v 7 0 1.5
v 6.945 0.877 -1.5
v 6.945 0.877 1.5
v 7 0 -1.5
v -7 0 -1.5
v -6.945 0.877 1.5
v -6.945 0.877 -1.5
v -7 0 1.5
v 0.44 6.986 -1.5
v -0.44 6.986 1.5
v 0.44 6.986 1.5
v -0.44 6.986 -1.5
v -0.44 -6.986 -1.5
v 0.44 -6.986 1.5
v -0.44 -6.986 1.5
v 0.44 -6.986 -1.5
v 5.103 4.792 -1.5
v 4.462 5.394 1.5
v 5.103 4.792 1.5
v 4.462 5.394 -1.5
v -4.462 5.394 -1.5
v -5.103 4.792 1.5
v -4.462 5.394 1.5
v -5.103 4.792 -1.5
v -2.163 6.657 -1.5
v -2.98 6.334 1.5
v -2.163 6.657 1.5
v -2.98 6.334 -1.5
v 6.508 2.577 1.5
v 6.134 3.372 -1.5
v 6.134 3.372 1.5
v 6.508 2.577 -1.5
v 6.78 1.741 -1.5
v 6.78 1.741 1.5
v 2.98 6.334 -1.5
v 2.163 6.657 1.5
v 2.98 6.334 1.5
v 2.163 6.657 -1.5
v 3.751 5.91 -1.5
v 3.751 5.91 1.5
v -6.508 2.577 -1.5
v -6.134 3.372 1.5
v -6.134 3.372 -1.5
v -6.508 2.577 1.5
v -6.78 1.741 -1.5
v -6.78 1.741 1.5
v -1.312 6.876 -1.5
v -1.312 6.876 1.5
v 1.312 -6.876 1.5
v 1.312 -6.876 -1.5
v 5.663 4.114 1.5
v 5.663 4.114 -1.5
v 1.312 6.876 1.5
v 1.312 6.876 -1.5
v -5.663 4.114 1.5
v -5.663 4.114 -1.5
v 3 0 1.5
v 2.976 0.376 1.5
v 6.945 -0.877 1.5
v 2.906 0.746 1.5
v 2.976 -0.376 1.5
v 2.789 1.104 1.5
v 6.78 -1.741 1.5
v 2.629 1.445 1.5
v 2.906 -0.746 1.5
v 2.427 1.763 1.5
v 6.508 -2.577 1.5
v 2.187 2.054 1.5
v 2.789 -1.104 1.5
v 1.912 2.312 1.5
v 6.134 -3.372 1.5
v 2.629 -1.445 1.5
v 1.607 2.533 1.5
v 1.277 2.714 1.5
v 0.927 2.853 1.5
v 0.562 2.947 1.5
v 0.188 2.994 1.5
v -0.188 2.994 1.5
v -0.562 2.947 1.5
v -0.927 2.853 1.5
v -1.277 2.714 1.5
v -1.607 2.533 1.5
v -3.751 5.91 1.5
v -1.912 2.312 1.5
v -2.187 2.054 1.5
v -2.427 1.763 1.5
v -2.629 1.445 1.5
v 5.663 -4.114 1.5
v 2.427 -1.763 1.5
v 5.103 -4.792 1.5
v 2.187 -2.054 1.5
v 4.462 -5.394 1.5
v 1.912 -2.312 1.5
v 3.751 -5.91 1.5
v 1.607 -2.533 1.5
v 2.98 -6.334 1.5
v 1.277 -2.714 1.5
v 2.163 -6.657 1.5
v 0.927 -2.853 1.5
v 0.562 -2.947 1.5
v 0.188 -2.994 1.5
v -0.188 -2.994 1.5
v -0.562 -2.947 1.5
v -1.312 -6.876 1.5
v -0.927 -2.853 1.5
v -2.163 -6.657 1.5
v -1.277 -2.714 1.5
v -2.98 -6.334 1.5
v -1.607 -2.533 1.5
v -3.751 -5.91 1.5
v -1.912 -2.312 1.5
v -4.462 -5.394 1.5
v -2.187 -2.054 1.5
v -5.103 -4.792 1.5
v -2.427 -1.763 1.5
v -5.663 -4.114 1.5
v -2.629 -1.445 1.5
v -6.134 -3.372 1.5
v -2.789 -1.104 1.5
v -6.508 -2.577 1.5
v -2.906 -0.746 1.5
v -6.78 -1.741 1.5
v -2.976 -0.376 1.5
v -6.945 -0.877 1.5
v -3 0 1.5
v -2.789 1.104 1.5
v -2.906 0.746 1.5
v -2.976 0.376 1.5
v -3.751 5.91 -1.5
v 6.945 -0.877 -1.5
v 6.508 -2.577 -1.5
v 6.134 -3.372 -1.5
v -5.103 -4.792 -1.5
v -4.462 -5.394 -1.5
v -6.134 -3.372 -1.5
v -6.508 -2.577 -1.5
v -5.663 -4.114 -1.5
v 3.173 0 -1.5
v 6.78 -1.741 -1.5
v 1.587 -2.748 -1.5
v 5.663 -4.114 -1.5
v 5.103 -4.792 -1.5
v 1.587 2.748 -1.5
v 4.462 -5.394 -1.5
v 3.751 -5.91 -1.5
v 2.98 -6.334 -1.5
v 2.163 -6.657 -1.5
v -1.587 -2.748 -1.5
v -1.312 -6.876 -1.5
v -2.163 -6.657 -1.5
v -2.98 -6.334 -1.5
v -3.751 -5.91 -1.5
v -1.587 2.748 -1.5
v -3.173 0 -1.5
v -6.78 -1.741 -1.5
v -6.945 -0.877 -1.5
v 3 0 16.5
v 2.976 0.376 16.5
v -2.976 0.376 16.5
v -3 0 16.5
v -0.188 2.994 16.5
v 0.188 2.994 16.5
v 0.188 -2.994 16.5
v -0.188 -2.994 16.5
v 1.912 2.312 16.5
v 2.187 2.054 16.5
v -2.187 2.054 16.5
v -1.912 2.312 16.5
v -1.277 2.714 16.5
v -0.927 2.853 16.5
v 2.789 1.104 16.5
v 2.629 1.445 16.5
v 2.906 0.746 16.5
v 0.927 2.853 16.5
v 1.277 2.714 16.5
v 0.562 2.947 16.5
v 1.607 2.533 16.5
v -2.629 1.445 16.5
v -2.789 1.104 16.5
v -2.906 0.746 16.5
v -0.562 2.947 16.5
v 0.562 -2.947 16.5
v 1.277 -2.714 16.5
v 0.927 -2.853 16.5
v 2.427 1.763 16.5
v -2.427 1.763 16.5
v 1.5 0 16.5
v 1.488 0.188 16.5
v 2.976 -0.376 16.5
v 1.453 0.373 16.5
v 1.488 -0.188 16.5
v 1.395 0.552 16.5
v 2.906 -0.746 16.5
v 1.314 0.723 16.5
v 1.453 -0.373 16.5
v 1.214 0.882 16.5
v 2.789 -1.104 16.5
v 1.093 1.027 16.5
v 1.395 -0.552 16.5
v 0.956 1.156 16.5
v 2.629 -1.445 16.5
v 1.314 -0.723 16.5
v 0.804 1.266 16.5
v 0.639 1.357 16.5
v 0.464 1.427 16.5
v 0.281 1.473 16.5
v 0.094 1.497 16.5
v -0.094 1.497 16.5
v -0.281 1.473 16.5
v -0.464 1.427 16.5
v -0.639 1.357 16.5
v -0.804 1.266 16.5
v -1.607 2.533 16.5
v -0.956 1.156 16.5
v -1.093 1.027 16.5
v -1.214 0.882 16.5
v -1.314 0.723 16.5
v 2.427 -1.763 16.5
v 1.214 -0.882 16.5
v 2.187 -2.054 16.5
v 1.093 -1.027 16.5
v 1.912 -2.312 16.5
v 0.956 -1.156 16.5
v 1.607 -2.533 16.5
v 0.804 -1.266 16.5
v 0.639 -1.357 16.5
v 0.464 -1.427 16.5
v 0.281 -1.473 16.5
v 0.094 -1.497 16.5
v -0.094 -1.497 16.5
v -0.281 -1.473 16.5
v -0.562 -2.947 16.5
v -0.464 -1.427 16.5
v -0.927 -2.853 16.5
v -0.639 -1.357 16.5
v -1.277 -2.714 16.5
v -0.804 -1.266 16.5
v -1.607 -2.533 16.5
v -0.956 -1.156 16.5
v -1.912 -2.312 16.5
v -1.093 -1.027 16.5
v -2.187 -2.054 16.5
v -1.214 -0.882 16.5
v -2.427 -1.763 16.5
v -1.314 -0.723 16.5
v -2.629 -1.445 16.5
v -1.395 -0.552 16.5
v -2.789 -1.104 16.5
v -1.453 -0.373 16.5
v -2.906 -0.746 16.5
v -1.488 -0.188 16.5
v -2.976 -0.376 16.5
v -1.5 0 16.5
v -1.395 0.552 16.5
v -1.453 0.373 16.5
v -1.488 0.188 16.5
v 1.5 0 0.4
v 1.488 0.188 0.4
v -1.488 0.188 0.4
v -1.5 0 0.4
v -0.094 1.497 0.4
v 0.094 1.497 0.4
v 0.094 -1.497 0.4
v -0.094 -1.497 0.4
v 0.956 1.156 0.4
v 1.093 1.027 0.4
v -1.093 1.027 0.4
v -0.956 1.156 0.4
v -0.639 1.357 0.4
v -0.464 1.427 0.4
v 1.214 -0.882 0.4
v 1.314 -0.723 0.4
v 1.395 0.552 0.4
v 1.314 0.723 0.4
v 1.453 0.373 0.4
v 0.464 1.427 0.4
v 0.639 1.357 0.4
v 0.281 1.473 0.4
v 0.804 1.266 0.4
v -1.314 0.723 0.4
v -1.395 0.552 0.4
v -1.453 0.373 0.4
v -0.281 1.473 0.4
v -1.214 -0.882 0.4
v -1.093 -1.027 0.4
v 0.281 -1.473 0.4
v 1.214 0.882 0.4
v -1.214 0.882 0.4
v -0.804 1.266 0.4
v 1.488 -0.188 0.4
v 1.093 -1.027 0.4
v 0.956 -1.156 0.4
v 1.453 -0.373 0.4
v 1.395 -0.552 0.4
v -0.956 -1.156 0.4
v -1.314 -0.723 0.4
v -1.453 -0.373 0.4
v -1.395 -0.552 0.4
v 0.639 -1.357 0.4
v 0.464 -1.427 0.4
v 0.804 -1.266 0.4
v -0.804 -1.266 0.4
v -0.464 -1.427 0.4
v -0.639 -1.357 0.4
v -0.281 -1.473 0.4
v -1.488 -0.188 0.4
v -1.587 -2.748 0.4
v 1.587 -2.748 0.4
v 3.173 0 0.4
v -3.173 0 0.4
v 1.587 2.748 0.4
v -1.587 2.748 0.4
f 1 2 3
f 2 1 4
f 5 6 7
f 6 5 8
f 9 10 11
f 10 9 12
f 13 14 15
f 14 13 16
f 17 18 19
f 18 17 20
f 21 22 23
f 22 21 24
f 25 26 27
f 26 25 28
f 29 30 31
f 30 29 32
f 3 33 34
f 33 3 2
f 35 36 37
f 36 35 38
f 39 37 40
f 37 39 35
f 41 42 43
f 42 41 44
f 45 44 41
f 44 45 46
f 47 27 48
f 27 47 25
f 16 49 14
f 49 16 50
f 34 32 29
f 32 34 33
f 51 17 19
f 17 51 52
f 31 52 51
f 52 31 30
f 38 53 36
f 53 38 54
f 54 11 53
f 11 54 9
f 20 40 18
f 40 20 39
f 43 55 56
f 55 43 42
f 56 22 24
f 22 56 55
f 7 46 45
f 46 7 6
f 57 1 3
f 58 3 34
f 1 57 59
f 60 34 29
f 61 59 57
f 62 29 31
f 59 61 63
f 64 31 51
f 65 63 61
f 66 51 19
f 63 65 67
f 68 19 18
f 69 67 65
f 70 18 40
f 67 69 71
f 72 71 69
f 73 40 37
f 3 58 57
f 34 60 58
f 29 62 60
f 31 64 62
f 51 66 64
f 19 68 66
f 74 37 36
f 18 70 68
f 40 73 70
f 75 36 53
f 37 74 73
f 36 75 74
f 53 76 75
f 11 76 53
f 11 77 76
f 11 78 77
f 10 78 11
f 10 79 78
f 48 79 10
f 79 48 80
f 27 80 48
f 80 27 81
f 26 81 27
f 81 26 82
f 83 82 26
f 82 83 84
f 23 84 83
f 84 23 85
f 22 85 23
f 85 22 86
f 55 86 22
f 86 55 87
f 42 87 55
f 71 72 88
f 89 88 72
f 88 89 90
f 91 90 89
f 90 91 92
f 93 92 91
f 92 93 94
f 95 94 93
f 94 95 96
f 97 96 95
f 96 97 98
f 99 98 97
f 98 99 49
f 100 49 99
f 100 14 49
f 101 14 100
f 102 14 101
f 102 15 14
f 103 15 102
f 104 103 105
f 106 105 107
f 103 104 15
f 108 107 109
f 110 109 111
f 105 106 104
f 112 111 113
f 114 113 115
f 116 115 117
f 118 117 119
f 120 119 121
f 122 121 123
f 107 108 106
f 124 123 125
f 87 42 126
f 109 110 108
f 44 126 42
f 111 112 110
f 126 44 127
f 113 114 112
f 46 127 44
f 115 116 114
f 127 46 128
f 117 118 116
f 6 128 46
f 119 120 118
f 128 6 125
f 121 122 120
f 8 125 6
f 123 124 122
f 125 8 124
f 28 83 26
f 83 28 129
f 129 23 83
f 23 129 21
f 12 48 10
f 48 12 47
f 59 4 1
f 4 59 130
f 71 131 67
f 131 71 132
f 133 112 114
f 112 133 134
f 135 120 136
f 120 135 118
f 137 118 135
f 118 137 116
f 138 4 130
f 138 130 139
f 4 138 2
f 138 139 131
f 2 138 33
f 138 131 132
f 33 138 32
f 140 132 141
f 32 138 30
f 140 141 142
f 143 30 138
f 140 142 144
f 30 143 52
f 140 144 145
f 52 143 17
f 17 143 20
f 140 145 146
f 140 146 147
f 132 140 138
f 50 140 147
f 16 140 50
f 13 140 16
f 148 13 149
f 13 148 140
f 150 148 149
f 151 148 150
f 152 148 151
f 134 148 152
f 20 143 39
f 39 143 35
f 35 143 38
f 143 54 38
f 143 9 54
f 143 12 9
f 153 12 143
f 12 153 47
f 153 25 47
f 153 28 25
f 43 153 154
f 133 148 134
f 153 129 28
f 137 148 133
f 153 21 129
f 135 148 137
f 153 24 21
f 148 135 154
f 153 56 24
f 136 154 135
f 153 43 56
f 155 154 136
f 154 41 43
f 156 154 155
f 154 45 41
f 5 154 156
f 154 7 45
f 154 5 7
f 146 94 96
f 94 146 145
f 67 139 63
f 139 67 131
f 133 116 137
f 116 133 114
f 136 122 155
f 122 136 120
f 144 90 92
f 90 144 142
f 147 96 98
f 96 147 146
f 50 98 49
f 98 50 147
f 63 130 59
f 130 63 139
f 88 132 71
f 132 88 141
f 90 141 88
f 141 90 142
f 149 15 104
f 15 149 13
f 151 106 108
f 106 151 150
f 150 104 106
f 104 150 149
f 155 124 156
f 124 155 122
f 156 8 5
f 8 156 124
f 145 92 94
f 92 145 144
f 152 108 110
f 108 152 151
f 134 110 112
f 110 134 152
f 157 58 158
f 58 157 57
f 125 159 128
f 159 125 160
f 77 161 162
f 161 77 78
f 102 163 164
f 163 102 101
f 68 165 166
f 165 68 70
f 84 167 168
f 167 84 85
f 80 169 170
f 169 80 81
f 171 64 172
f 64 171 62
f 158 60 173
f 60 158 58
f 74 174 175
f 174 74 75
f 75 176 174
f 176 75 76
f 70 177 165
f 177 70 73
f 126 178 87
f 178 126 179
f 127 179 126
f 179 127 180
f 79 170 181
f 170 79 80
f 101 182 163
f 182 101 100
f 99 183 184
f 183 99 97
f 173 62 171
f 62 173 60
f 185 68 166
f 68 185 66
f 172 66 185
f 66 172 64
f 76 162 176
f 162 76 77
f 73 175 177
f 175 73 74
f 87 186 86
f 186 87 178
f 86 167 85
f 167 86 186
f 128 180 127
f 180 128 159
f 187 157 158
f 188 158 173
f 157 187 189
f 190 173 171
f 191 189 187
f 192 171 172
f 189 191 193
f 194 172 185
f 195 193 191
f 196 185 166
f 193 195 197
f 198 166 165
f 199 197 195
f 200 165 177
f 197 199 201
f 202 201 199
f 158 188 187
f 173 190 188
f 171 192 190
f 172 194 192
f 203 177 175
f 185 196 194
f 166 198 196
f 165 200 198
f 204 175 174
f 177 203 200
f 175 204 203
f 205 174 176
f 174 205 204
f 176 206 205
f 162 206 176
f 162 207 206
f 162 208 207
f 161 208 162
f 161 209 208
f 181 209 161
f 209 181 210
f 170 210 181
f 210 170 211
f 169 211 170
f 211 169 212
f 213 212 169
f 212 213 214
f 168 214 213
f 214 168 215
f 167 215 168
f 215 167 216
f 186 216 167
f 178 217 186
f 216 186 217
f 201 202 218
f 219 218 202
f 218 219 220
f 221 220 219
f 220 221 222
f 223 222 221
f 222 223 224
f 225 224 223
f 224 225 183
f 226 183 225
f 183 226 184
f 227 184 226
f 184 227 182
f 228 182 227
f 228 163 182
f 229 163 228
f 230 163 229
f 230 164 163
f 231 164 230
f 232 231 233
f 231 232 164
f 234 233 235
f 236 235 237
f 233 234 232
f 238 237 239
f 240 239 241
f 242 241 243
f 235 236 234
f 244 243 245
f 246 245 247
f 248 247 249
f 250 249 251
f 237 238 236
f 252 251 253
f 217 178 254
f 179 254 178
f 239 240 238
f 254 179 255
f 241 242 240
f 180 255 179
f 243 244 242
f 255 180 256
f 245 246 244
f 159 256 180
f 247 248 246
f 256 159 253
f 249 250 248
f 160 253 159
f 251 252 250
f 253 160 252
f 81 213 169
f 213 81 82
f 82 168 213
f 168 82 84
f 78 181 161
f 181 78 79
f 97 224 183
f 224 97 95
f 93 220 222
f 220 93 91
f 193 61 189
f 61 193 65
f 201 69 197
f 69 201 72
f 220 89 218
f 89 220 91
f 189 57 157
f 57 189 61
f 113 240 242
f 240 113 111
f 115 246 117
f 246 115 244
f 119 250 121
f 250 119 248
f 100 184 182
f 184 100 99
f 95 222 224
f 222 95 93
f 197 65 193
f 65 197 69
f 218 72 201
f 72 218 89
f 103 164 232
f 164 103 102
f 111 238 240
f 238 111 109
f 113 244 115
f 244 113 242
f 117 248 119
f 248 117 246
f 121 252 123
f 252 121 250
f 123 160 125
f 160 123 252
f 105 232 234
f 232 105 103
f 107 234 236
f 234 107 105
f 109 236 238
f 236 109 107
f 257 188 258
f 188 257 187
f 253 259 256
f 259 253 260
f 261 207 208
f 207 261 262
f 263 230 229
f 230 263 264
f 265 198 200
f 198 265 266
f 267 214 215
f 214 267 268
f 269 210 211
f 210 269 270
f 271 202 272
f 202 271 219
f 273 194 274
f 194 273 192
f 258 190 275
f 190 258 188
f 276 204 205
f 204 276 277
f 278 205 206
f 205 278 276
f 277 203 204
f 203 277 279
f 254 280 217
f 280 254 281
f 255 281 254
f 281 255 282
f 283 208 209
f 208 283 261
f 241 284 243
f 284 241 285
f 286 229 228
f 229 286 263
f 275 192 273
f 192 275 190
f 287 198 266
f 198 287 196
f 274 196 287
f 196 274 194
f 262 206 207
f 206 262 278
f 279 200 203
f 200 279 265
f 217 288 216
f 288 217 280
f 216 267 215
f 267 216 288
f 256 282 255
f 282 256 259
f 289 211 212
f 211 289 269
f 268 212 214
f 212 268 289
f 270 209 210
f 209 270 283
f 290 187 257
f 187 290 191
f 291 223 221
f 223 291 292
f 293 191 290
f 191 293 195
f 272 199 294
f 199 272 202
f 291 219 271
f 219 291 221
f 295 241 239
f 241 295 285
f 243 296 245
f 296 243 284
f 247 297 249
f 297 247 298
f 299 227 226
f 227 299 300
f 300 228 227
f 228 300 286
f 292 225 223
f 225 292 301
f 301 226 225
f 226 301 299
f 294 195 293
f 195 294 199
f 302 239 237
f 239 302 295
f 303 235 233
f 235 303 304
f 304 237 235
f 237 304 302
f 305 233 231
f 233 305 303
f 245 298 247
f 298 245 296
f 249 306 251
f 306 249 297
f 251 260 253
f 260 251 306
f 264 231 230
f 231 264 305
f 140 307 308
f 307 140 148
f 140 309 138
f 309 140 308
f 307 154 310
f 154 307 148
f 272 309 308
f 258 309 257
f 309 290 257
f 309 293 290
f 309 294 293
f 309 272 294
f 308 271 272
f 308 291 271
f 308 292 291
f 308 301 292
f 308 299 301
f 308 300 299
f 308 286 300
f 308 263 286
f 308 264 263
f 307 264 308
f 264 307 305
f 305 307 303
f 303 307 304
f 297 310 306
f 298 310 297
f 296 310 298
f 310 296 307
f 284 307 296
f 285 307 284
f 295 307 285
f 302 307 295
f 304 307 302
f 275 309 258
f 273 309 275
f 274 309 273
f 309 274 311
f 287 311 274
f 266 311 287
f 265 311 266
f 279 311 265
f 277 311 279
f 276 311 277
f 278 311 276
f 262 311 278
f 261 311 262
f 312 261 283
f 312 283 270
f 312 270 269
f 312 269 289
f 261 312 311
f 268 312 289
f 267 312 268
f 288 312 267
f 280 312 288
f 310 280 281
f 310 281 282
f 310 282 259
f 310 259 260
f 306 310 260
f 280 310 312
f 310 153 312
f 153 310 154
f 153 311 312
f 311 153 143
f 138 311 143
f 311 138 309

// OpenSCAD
$fn = 50;


difference() {
	union() {
		translate(v = [0, 0, -1.5000000000]) {
			rotate(a = [0, 0, 0]) {
				cylinder(h = 3, r = 7.0000000000);
			}
		}
		translate(v = [0, 0, -1.5000000000]) {
			rotate(a = [0, 0, 0]) {
				cylinder(h = 18, r = 3.0000000000);
			}
		}
	}
	union() {
		translate(v = [0, 0, -125.0000000000]) {
			rotate(a = [0, 0, 0]) {
				cylinder(h = 250, r = 1.5000000000);
			}
		}
		translate(v = [0, 0, -2.1000000000]) {
			rotate(a = [0, 0, 0]) {
				#translate(v = [0, 0, 0]) {
					rotate(a = [0, 0, 0]) {
						linear_extrude(height = 2.5000000000) {
							polygon(points = [[3.1735000000, 0.0000000000], [1.5867500000, 2.7483316189], [-1.5867500000, 2.7483316189], [-3.1735000000, 0.0000000000], [-1.5867500000, -2.7483316189], [1.5867500000, -2.7483316189]]);
						}
					}
				}
			}
		}
	}
}
